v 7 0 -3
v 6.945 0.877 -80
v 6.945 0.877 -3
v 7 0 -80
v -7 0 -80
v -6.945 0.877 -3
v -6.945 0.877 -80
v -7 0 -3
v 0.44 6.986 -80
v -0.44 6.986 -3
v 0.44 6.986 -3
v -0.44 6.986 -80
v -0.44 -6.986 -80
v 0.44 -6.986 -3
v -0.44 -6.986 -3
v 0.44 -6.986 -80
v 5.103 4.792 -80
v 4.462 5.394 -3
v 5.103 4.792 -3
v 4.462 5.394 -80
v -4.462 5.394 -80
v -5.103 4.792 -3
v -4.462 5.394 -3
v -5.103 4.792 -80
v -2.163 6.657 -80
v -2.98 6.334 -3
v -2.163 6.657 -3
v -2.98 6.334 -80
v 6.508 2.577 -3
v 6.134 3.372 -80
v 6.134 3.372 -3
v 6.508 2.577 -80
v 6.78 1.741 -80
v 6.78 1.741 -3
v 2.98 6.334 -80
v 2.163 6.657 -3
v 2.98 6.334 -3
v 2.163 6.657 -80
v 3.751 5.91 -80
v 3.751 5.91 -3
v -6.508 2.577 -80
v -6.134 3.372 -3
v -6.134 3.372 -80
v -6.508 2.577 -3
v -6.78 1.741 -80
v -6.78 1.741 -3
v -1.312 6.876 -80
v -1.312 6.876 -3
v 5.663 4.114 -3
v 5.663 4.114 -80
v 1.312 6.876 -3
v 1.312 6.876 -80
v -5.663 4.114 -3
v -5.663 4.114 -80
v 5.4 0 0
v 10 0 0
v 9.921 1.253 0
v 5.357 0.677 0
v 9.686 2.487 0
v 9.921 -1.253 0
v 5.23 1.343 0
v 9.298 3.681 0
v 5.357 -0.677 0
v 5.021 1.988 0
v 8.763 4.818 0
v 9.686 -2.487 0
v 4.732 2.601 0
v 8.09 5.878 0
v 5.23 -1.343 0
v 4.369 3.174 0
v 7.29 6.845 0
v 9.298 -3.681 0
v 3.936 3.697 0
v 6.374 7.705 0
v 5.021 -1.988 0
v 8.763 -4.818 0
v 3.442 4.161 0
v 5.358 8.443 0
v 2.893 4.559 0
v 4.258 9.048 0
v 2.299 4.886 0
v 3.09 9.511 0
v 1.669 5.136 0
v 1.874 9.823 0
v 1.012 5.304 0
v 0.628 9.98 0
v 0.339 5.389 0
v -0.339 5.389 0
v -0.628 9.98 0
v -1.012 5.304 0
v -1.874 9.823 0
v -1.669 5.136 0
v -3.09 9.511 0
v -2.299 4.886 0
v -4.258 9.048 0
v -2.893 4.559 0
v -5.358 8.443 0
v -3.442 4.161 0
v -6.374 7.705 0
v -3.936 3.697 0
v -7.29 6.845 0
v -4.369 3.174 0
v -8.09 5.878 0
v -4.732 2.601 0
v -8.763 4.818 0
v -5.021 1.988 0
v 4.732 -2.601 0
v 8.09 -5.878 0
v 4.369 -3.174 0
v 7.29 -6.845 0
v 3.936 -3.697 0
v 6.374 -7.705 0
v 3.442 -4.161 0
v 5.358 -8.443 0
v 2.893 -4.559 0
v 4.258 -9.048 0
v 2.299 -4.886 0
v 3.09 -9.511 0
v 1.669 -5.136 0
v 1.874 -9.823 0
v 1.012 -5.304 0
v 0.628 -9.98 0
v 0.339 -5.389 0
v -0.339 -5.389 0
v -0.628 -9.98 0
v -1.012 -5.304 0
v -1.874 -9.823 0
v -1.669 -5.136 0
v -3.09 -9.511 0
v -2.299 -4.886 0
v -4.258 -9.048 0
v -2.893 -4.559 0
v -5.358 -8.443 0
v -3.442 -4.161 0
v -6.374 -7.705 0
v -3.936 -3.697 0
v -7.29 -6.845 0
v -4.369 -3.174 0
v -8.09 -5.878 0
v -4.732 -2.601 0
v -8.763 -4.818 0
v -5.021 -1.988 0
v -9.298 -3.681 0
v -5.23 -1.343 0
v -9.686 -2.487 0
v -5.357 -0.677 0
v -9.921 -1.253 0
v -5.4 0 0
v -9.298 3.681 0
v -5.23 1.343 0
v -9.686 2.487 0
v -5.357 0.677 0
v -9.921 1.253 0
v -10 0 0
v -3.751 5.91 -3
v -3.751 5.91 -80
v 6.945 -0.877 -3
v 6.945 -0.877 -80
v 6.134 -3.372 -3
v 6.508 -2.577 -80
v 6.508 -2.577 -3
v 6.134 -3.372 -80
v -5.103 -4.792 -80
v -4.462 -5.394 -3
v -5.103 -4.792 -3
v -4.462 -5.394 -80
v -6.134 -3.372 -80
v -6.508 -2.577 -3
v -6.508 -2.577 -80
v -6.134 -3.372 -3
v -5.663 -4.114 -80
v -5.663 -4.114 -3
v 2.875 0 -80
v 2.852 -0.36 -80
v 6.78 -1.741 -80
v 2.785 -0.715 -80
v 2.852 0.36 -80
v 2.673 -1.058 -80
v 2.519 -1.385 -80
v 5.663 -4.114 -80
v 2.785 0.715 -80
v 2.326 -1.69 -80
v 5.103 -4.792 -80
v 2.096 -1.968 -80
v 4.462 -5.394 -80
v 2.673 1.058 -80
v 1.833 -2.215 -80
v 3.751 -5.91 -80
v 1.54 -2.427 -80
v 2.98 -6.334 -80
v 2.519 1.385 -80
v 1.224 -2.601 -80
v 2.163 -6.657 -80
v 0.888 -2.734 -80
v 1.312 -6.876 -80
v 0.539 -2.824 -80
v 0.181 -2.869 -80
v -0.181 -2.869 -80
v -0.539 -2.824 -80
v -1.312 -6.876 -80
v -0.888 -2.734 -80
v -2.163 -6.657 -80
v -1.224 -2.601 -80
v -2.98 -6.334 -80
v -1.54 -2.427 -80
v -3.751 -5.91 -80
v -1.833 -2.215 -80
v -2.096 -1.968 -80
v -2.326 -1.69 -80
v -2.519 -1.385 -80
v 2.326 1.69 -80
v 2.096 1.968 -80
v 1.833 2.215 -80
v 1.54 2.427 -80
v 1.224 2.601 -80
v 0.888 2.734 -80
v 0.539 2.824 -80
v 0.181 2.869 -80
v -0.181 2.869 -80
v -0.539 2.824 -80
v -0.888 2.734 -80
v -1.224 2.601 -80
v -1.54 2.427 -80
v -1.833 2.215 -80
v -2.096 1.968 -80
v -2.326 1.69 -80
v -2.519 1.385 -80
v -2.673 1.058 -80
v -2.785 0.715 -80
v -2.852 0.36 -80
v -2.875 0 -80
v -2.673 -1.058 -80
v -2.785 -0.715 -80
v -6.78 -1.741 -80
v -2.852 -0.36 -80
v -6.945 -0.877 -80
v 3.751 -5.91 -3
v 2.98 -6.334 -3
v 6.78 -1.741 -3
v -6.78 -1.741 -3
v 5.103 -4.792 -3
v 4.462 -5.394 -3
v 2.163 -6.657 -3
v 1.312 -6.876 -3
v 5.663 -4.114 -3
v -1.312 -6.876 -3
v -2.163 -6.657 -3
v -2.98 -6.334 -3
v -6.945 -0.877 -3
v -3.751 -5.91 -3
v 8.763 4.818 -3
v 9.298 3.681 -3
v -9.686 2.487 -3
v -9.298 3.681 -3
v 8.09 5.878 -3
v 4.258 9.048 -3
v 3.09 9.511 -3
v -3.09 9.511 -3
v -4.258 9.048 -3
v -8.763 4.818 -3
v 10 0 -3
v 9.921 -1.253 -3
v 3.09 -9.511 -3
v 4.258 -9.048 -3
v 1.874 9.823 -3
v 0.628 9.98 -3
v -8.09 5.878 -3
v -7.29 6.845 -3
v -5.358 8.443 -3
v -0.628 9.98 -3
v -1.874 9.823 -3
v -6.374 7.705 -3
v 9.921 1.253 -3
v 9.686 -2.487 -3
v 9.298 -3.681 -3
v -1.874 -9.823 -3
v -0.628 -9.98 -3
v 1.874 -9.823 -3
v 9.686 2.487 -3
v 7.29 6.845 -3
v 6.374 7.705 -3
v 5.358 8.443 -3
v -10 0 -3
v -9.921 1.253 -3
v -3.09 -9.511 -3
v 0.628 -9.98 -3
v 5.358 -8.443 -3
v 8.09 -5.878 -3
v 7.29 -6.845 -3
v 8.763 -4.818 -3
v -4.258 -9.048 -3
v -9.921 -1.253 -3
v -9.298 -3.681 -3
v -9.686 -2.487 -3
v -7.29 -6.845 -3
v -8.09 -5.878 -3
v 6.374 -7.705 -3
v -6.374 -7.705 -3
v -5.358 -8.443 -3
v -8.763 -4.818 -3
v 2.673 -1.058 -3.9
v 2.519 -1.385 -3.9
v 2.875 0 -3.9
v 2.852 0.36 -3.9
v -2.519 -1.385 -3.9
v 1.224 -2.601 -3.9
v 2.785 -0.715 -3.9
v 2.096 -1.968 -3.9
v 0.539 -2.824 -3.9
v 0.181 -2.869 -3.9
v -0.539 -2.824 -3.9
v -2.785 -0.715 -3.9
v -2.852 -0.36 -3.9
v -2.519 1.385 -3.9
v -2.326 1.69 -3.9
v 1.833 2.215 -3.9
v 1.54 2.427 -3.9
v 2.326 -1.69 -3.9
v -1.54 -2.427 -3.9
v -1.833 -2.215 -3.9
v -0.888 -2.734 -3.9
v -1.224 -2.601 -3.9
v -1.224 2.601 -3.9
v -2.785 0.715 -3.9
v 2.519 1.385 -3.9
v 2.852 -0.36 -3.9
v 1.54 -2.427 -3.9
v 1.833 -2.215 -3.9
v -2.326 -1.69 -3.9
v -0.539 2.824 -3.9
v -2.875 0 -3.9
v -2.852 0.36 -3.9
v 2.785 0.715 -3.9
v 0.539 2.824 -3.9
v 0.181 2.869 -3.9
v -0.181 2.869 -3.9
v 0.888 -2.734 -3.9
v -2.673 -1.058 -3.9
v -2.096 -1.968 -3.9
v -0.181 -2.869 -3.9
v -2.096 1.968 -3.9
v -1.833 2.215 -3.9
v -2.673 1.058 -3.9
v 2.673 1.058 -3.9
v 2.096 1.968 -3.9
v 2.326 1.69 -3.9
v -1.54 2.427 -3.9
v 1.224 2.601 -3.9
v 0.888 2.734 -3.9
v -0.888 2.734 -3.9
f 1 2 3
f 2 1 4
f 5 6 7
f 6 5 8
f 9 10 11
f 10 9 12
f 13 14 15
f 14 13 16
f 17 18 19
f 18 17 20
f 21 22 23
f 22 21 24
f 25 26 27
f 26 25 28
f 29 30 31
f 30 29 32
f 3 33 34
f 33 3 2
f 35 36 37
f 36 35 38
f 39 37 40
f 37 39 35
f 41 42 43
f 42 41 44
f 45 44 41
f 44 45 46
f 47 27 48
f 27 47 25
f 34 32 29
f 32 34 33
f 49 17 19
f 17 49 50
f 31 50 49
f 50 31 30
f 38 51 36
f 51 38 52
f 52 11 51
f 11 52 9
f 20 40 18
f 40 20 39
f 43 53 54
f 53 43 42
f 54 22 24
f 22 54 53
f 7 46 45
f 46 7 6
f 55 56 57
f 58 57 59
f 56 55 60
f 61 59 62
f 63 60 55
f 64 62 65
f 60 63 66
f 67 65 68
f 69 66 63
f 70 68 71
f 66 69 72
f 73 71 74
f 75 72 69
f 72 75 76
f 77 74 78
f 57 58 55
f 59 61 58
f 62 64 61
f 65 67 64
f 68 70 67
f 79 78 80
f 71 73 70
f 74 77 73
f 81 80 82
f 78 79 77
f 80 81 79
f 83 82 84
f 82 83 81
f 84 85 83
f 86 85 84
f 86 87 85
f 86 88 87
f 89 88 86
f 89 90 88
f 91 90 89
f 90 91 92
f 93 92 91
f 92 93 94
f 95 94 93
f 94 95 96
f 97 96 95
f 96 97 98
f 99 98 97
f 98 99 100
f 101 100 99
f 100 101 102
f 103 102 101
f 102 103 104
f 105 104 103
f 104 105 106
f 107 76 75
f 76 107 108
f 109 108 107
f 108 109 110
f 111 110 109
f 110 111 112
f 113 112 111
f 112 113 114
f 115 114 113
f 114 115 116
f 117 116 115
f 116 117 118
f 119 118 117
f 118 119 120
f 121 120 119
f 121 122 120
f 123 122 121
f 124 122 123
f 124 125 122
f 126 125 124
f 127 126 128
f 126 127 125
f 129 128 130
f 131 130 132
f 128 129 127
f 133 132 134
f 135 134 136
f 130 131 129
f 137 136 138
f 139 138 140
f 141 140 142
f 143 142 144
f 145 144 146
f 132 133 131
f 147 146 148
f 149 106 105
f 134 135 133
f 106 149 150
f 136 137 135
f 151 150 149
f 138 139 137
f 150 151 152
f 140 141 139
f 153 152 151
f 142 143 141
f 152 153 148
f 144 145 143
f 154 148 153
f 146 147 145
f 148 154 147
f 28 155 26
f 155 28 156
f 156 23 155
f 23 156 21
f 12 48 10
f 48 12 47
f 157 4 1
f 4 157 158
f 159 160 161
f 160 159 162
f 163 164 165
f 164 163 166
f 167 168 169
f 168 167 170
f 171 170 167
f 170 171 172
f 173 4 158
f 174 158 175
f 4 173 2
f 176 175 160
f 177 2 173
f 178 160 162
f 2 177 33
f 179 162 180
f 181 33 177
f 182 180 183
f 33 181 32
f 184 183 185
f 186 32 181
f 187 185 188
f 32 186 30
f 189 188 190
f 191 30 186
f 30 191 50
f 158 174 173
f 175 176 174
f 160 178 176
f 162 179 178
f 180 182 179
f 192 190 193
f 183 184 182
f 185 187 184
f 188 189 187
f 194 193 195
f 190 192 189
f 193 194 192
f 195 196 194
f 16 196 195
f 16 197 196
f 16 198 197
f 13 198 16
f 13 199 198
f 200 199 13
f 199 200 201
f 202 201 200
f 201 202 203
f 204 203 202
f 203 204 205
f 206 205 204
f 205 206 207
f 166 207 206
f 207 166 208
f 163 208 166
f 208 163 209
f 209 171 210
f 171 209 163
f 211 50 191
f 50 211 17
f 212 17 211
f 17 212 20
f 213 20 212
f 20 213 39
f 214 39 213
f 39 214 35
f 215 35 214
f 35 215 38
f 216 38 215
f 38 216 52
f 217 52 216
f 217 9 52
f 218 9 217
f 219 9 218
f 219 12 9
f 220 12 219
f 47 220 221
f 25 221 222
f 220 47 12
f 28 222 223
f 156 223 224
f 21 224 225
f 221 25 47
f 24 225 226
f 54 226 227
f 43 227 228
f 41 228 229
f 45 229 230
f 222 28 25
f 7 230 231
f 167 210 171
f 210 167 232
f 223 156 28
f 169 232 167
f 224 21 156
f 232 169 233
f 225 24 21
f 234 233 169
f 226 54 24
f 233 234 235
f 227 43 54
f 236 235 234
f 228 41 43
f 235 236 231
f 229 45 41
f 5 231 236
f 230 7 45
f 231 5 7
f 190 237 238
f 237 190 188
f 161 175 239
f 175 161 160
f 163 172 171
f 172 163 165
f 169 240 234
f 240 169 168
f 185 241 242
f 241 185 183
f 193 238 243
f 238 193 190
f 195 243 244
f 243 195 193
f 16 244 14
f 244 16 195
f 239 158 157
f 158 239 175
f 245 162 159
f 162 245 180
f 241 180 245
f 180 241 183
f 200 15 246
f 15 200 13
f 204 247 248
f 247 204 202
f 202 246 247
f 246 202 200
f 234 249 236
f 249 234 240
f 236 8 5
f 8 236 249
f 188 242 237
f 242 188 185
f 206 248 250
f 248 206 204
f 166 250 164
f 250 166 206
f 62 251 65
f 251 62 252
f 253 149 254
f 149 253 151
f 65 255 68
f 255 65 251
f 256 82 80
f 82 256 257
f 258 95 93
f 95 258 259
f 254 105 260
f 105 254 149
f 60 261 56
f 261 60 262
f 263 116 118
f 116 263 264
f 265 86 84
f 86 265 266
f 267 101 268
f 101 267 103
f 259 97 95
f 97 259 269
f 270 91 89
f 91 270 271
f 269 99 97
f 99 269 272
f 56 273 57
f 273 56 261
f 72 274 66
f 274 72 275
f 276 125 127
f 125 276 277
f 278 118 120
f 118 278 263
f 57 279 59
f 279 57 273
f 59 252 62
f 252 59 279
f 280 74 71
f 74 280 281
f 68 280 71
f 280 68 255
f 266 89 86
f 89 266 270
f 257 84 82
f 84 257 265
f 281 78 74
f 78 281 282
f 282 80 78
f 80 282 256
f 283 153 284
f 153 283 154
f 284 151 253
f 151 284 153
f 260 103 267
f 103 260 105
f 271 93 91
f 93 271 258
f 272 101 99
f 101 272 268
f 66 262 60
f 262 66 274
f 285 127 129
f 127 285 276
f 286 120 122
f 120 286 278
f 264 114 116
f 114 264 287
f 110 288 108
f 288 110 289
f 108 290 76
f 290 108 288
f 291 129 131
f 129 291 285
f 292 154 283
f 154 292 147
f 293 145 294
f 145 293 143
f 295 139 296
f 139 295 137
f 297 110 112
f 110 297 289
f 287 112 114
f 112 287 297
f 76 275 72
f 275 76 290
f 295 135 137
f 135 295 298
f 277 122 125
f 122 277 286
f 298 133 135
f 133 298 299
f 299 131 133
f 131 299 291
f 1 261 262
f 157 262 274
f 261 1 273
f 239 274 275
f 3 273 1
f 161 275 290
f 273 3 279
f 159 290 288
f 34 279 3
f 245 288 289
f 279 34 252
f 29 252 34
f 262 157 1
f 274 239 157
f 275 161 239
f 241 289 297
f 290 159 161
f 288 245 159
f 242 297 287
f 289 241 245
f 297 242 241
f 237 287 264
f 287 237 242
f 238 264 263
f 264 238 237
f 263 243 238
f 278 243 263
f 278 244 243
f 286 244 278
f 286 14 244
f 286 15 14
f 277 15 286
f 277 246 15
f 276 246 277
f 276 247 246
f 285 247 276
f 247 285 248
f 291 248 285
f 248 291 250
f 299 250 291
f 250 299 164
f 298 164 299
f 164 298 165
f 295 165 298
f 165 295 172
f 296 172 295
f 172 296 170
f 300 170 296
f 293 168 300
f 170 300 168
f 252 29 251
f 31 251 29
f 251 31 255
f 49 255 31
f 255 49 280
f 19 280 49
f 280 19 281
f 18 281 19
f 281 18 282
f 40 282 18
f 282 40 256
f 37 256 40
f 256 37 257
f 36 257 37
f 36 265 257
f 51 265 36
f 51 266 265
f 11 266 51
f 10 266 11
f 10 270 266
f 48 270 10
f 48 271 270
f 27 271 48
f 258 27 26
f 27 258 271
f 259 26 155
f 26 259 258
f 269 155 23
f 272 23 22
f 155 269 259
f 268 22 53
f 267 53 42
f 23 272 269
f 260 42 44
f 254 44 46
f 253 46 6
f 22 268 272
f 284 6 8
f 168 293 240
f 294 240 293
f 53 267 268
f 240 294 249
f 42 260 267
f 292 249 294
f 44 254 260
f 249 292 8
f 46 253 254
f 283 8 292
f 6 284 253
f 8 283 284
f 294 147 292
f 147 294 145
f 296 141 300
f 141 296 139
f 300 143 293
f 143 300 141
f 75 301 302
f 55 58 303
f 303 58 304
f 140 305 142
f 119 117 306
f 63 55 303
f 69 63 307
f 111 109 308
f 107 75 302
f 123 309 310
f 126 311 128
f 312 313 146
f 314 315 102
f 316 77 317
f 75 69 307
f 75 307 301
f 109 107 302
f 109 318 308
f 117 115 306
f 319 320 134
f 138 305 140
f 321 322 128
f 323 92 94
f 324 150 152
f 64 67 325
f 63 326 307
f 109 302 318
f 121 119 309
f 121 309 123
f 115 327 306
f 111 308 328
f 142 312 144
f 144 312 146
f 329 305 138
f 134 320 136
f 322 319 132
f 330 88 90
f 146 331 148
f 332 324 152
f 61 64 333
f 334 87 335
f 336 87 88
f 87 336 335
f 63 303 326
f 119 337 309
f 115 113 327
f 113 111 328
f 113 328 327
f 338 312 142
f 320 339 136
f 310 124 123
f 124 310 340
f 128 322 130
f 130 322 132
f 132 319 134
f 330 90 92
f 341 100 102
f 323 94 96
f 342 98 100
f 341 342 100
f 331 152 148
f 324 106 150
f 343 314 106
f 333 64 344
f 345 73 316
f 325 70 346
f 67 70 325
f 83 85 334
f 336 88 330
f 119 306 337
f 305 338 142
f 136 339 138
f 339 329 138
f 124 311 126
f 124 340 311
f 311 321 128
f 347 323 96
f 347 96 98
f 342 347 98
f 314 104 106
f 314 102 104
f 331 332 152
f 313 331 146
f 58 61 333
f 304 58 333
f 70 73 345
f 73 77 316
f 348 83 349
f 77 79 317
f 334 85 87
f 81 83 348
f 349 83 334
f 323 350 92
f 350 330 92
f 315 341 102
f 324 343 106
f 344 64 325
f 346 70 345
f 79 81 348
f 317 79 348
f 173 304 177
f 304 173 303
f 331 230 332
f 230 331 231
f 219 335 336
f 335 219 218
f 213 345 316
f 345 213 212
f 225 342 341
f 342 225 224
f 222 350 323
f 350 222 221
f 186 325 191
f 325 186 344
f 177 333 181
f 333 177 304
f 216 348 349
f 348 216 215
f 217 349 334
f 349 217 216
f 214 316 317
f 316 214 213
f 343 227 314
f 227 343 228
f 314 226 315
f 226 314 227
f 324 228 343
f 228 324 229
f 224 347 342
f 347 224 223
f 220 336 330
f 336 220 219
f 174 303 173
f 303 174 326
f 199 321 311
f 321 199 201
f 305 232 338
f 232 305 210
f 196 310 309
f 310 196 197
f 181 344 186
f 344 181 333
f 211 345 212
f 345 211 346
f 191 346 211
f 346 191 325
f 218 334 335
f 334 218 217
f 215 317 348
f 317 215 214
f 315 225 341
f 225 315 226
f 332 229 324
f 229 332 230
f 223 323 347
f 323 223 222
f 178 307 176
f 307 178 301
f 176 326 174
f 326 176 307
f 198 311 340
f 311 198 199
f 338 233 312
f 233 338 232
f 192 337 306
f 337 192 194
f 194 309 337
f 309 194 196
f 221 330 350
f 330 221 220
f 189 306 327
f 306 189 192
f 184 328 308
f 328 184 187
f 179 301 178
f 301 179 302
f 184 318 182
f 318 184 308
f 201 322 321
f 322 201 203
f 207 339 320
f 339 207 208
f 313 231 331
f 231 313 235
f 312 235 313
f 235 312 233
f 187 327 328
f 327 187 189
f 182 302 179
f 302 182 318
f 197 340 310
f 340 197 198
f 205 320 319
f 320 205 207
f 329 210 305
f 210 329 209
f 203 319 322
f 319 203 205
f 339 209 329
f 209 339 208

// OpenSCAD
$fn = 50;


difference() {
	union() {
		translate(v = [0, 0, -80.0000000000]) {
			cylinder(h = 80, r = 7.0000000000);
		}
		translate(v = [0, 0, -3.0000000000]) {
			cylinder(h = 3, r = 10.0000000000);
		}
	}
	union() {
		translate(v = [0, 0, 0]) {
			rotate(a = [0, 0, 0]) {
				difference() {
					union() {
						#translate(v = [0, 0, -80.0000000000]) {
							cylinder(h = 80, r = 2.6000000000);
						}
						#translate(v = [0, 0, -3.9000000000]) {
							cylinder(h = 3.9000000000, r = 7.0000000000, r1 = 2.8750000000, r2 = 5.4000000000);
						}
						#translate(v = [0, 0, -80.0000000000]) {
							cylinder(h = 80, r = 2.8750000000);
						}
						#translate(v = [0, 0, -80.0000000000]) {
							cylinder(h = 80, r = 2.6000000000);
						}
					}
					union();
				}
			}
		}
	}
}
